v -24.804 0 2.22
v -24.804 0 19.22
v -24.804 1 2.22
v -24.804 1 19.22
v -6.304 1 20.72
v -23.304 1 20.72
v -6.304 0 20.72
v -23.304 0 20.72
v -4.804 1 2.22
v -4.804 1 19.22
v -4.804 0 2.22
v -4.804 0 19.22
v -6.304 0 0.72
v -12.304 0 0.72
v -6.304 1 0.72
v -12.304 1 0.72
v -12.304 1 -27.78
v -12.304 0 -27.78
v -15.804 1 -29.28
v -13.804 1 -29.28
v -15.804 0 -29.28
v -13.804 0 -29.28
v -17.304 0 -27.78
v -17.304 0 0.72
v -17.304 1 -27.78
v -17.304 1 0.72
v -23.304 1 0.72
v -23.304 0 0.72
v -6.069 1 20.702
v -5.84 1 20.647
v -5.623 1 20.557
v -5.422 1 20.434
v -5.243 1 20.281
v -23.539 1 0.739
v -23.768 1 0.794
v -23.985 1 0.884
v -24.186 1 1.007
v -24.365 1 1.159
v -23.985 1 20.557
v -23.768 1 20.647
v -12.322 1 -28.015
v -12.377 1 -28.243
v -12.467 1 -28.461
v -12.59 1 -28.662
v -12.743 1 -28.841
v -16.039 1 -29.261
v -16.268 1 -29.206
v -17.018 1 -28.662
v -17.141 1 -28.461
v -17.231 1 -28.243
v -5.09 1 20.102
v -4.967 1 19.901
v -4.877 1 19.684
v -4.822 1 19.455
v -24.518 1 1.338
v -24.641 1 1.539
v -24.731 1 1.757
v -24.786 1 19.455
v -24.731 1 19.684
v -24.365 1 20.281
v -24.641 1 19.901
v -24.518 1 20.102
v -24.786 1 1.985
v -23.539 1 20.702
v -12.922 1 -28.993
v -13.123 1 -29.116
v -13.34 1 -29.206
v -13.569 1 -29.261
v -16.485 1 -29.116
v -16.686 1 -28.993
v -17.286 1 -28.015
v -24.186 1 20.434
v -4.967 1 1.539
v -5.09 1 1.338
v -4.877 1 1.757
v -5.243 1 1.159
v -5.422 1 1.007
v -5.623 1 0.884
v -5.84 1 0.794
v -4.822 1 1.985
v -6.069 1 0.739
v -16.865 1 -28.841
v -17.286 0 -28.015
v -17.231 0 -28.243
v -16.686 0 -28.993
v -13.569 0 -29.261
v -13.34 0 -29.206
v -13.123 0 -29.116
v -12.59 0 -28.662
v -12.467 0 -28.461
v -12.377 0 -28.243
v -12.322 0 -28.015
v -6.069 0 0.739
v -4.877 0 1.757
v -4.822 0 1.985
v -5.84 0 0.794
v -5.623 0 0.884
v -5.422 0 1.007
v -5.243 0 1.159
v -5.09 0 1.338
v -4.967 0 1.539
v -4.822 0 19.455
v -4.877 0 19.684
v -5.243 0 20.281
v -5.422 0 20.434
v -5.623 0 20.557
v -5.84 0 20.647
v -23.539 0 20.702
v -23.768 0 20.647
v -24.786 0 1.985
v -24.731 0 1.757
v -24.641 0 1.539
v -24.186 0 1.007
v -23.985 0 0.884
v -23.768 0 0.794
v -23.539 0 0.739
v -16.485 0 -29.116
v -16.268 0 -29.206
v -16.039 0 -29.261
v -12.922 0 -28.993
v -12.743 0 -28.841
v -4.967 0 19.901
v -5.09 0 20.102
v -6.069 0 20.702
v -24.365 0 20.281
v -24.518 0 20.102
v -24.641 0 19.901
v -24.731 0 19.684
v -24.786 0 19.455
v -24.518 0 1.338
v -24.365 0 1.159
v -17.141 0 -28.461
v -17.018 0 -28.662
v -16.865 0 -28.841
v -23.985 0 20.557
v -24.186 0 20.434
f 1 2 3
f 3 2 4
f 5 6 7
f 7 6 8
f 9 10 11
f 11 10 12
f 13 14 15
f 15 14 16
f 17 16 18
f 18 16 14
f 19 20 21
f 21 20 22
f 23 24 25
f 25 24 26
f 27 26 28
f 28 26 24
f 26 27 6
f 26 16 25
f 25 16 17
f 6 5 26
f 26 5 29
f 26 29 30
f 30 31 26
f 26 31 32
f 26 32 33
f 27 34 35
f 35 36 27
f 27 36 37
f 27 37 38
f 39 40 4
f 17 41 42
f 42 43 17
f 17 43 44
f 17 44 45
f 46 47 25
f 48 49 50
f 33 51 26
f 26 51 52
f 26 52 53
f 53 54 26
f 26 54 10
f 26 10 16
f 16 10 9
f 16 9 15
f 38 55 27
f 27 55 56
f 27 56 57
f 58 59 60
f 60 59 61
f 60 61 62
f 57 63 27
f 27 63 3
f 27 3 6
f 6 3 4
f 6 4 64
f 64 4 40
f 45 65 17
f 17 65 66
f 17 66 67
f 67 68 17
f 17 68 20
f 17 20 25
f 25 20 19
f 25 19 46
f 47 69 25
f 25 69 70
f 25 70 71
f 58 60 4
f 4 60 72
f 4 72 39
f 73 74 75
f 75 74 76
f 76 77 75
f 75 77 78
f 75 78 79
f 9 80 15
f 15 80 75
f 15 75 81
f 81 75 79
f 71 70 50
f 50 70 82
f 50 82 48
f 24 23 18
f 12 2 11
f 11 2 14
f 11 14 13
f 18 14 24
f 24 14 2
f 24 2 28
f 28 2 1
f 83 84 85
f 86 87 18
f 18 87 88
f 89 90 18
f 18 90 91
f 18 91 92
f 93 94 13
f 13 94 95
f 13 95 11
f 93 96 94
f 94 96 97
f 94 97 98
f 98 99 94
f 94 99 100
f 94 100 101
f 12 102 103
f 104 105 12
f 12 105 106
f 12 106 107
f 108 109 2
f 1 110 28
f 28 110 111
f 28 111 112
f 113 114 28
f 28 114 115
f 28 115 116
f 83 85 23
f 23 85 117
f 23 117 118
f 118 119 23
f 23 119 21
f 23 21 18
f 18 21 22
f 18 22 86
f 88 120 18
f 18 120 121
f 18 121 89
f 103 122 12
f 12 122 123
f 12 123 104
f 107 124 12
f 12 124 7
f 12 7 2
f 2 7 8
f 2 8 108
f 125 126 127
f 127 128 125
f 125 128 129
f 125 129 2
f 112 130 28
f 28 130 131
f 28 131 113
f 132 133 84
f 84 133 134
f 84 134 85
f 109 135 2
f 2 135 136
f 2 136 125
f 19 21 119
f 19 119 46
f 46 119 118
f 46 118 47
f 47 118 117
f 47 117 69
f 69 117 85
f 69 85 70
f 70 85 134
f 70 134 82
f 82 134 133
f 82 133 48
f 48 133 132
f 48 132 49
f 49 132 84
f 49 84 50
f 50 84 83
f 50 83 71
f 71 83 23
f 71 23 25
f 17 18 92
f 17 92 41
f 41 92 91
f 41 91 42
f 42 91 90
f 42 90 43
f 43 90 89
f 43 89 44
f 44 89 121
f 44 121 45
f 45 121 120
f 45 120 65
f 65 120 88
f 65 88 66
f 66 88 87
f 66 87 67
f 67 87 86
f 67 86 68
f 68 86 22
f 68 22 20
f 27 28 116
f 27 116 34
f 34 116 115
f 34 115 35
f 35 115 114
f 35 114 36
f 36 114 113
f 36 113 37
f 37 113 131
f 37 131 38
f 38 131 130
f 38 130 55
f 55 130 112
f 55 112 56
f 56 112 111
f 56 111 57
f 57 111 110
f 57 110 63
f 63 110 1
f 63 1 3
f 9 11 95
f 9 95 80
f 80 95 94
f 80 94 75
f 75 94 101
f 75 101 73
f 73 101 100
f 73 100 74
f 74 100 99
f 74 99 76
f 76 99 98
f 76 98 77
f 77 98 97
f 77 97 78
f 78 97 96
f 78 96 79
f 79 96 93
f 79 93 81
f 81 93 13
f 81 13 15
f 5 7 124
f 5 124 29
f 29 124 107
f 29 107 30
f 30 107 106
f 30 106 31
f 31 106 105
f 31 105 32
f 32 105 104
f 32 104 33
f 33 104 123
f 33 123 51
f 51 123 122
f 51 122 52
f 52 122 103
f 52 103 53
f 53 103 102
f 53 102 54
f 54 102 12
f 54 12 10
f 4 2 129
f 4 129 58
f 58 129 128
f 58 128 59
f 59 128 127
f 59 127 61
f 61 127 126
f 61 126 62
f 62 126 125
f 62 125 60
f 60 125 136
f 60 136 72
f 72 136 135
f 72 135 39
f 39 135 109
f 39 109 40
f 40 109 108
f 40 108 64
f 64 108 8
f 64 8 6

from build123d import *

# Parameters (mm, degrees)
EXTRUDE_1_DEPTH = 1
FILLET_1_R      = 1.5


with BuildPart() as part:
    # 草图1 → 凸台-拉伸1 (new body)
    with BuildSketch(Plane(origin=(0, 0, 0), x_dir=(1, 0, 0), z_dir=(0, 1, 0))):
        Polygon((-24.804006769, -20.720140696), (-4.804006769, -20.720140696), (-4.804006769, -0.720140696), (-12.304006769, -0.720140696), (-12.304006769, 29.279859304), (-17.304006769, 29.279859304), (-17.304006769, -0.720140696), (-24.804006769, -0.720140696), align=None)
    extrude(amount=EXTRUDE_1_DEPTH)

    # 圆角1
    fillet_1_edges = [part.edges().sort_by_distance(p)[0] for p in [
        (-24.804006769, 0.5, 0.720140696),
        (-17.304006769, 0.5, -29.279859304),
        (-12.304006769, 0.5, -29.279859304),
        (-4.804006769, 0.5, 0.720140696),
        (-4.804006769, 0.5, 20.720140696),
        (-24.804006769, 0.5, 20.720140696),
    ]]
    fillet(fillet_1_edges, radius=FILLET_1_R)


solid = part.part
